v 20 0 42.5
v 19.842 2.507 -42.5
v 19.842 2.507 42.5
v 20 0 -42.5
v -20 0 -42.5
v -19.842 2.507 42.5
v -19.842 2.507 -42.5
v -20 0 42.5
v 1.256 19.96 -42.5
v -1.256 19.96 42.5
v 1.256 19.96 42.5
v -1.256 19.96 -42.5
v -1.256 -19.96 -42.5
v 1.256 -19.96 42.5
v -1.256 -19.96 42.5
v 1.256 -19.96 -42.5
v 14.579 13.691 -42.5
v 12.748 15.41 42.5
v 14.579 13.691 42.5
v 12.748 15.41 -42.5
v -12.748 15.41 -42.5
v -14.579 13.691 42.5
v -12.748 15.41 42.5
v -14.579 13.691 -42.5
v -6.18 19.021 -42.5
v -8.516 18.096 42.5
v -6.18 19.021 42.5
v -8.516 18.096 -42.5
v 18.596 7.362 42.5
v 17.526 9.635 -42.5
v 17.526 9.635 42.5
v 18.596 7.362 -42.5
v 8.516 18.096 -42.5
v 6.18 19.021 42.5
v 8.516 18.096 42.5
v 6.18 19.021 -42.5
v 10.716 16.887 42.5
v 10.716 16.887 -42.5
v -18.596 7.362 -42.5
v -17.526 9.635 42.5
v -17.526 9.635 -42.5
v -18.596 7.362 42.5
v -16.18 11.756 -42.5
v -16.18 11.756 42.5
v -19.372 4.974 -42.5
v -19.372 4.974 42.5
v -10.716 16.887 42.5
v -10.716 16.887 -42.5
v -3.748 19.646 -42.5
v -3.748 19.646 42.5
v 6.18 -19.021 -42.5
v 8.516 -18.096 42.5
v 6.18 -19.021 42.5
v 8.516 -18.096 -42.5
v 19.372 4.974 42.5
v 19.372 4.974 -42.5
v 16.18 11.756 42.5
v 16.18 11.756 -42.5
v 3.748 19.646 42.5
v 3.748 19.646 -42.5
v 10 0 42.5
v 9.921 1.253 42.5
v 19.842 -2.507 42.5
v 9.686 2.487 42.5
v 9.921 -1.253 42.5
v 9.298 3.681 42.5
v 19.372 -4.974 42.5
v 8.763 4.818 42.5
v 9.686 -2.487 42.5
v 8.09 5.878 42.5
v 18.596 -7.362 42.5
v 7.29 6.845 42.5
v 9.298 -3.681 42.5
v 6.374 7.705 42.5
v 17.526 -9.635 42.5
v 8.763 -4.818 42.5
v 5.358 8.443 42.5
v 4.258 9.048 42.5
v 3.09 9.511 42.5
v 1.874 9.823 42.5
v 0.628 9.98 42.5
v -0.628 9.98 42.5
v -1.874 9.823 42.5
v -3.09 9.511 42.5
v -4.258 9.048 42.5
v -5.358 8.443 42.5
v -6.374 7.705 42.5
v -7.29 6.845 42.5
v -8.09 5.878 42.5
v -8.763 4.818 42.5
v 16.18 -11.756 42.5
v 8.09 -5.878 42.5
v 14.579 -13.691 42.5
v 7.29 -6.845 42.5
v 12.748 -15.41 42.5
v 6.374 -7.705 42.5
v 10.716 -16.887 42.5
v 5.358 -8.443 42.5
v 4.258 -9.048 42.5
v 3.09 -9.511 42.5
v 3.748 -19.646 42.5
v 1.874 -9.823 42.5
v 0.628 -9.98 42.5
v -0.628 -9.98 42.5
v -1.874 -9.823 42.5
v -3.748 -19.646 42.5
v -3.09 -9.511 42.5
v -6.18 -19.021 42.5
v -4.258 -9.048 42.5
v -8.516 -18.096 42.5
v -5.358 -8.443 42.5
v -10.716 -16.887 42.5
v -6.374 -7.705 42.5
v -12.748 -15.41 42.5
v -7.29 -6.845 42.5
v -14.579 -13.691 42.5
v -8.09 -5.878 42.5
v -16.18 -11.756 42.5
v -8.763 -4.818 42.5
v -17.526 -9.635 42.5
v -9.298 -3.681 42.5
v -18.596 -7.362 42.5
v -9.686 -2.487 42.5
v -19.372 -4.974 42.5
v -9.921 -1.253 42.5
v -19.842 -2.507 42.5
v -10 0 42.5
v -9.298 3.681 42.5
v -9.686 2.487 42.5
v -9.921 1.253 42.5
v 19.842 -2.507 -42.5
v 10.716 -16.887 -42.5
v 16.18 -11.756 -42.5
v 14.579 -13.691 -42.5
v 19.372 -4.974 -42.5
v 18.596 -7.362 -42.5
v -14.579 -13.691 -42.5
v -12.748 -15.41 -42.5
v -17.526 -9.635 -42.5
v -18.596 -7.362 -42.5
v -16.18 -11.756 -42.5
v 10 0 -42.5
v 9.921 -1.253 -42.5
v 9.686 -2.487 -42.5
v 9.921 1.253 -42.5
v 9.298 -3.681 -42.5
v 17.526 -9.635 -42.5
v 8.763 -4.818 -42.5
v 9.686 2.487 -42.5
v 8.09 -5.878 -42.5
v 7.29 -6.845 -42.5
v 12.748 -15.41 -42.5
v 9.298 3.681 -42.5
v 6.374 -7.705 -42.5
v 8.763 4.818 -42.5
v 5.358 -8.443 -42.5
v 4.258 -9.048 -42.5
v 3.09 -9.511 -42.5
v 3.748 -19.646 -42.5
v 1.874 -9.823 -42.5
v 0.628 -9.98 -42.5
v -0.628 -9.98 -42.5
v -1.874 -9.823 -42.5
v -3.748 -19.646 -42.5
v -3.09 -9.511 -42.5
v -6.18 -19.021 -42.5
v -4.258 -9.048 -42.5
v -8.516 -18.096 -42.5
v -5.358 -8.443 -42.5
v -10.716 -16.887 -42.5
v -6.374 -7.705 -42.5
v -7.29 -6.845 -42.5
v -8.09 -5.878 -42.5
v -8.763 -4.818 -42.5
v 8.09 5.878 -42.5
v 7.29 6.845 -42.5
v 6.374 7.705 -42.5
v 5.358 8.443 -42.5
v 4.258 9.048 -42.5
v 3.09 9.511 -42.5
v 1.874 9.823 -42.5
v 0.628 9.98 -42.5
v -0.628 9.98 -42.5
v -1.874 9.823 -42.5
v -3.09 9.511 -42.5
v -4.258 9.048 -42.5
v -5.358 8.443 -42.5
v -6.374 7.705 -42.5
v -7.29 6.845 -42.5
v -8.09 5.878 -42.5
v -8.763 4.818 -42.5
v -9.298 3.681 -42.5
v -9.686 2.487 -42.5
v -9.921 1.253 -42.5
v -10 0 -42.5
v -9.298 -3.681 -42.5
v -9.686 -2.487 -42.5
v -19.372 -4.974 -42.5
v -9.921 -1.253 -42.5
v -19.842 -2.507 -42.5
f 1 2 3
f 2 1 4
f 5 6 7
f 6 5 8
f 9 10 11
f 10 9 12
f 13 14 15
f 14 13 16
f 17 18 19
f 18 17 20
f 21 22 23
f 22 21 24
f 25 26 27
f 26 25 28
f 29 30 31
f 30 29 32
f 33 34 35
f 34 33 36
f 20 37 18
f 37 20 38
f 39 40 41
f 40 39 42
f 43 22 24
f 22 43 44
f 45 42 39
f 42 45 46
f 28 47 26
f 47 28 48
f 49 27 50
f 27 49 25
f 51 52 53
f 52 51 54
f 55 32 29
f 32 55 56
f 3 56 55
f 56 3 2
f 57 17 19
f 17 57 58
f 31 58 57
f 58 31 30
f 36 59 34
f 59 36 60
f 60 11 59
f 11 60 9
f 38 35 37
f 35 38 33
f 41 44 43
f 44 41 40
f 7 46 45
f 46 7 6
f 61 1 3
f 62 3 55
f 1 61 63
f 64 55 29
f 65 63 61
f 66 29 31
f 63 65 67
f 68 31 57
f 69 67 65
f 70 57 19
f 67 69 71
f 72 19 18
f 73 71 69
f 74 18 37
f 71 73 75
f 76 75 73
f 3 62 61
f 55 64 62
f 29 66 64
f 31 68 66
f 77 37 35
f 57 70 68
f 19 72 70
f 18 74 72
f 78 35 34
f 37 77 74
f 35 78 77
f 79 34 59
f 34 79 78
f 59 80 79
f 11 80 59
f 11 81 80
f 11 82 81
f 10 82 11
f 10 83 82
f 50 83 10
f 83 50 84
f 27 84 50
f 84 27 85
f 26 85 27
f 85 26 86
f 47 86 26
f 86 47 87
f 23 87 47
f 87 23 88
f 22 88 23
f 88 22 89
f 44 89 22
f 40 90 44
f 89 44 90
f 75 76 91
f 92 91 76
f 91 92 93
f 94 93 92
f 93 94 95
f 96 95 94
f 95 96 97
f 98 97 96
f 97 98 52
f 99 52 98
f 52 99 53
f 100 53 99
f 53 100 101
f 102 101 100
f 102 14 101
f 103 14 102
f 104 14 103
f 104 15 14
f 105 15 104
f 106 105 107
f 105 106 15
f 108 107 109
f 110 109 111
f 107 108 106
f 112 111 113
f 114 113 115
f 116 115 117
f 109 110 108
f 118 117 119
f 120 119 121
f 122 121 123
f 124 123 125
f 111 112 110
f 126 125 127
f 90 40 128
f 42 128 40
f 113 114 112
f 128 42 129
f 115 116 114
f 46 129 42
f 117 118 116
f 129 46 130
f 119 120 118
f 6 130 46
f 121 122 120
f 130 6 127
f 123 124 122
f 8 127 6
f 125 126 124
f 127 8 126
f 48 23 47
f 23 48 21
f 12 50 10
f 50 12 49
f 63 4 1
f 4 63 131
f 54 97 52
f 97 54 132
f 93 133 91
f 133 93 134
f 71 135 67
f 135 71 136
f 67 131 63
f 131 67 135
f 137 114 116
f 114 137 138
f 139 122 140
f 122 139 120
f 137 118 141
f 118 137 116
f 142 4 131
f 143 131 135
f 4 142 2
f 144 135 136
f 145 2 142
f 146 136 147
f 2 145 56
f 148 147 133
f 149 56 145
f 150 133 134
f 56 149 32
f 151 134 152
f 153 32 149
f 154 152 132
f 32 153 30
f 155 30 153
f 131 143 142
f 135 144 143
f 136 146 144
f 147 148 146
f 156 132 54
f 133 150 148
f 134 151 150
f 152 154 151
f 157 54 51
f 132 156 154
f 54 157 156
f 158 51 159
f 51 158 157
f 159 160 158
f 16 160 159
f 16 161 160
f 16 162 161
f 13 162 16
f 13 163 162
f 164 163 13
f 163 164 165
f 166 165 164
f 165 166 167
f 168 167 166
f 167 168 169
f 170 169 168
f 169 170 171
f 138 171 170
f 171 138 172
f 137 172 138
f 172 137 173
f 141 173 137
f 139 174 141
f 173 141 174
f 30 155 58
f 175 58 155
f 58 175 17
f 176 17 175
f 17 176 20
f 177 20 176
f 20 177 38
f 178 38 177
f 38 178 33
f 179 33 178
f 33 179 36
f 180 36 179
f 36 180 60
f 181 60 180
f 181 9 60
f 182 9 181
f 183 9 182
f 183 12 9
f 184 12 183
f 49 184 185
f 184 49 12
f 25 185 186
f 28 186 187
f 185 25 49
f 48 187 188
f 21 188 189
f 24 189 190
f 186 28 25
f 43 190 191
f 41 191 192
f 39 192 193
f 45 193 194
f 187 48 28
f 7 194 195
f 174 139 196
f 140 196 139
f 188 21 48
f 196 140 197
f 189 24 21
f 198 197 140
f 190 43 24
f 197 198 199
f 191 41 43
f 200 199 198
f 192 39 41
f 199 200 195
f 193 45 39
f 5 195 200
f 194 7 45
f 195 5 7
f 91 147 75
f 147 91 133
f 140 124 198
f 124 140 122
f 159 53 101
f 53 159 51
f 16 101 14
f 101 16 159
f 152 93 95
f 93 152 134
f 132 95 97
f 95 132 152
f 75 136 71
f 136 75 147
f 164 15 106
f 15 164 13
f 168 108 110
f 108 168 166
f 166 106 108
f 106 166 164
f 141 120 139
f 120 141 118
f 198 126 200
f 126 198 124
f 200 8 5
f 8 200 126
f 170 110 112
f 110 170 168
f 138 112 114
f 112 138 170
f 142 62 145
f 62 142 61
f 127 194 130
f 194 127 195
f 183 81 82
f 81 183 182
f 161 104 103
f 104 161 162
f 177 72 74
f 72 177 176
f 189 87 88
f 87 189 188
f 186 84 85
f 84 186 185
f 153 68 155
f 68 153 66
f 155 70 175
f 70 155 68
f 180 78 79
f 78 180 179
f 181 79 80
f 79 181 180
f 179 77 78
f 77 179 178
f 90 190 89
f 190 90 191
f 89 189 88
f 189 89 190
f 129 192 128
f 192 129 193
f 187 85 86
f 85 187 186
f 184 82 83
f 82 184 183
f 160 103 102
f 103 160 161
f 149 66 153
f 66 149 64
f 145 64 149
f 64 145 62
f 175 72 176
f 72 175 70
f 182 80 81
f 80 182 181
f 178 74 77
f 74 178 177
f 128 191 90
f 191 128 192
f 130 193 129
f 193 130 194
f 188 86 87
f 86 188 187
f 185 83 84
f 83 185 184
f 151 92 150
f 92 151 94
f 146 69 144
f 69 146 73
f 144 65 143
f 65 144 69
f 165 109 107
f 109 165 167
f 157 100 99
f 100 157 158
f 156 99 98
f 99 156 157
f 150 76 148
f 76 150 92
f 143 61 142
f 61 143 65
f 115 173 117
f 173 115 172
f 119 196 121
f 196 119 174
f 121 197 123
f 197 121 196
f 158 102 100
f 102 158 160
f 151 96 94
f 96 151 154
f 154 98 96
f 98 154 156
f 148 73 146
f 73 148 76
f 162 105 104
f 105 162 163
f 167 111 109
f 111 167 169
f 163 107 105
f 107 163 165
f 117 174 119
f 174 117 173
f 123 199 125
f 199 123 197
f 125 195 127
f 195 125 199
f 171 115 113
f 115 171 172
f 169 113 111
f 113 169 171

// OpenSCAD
$fn = 50;


difference() {
	union() {
		translate(v = [0, 0, -42.5000000000]) {
			cylinder(h = 85, r = 20.0000000000);
		}
	}
	union() {
		translate(v = [0, 0, -100.0000000000]) {
			cylinder(h = 200, r = 10);
		}
	}
}
